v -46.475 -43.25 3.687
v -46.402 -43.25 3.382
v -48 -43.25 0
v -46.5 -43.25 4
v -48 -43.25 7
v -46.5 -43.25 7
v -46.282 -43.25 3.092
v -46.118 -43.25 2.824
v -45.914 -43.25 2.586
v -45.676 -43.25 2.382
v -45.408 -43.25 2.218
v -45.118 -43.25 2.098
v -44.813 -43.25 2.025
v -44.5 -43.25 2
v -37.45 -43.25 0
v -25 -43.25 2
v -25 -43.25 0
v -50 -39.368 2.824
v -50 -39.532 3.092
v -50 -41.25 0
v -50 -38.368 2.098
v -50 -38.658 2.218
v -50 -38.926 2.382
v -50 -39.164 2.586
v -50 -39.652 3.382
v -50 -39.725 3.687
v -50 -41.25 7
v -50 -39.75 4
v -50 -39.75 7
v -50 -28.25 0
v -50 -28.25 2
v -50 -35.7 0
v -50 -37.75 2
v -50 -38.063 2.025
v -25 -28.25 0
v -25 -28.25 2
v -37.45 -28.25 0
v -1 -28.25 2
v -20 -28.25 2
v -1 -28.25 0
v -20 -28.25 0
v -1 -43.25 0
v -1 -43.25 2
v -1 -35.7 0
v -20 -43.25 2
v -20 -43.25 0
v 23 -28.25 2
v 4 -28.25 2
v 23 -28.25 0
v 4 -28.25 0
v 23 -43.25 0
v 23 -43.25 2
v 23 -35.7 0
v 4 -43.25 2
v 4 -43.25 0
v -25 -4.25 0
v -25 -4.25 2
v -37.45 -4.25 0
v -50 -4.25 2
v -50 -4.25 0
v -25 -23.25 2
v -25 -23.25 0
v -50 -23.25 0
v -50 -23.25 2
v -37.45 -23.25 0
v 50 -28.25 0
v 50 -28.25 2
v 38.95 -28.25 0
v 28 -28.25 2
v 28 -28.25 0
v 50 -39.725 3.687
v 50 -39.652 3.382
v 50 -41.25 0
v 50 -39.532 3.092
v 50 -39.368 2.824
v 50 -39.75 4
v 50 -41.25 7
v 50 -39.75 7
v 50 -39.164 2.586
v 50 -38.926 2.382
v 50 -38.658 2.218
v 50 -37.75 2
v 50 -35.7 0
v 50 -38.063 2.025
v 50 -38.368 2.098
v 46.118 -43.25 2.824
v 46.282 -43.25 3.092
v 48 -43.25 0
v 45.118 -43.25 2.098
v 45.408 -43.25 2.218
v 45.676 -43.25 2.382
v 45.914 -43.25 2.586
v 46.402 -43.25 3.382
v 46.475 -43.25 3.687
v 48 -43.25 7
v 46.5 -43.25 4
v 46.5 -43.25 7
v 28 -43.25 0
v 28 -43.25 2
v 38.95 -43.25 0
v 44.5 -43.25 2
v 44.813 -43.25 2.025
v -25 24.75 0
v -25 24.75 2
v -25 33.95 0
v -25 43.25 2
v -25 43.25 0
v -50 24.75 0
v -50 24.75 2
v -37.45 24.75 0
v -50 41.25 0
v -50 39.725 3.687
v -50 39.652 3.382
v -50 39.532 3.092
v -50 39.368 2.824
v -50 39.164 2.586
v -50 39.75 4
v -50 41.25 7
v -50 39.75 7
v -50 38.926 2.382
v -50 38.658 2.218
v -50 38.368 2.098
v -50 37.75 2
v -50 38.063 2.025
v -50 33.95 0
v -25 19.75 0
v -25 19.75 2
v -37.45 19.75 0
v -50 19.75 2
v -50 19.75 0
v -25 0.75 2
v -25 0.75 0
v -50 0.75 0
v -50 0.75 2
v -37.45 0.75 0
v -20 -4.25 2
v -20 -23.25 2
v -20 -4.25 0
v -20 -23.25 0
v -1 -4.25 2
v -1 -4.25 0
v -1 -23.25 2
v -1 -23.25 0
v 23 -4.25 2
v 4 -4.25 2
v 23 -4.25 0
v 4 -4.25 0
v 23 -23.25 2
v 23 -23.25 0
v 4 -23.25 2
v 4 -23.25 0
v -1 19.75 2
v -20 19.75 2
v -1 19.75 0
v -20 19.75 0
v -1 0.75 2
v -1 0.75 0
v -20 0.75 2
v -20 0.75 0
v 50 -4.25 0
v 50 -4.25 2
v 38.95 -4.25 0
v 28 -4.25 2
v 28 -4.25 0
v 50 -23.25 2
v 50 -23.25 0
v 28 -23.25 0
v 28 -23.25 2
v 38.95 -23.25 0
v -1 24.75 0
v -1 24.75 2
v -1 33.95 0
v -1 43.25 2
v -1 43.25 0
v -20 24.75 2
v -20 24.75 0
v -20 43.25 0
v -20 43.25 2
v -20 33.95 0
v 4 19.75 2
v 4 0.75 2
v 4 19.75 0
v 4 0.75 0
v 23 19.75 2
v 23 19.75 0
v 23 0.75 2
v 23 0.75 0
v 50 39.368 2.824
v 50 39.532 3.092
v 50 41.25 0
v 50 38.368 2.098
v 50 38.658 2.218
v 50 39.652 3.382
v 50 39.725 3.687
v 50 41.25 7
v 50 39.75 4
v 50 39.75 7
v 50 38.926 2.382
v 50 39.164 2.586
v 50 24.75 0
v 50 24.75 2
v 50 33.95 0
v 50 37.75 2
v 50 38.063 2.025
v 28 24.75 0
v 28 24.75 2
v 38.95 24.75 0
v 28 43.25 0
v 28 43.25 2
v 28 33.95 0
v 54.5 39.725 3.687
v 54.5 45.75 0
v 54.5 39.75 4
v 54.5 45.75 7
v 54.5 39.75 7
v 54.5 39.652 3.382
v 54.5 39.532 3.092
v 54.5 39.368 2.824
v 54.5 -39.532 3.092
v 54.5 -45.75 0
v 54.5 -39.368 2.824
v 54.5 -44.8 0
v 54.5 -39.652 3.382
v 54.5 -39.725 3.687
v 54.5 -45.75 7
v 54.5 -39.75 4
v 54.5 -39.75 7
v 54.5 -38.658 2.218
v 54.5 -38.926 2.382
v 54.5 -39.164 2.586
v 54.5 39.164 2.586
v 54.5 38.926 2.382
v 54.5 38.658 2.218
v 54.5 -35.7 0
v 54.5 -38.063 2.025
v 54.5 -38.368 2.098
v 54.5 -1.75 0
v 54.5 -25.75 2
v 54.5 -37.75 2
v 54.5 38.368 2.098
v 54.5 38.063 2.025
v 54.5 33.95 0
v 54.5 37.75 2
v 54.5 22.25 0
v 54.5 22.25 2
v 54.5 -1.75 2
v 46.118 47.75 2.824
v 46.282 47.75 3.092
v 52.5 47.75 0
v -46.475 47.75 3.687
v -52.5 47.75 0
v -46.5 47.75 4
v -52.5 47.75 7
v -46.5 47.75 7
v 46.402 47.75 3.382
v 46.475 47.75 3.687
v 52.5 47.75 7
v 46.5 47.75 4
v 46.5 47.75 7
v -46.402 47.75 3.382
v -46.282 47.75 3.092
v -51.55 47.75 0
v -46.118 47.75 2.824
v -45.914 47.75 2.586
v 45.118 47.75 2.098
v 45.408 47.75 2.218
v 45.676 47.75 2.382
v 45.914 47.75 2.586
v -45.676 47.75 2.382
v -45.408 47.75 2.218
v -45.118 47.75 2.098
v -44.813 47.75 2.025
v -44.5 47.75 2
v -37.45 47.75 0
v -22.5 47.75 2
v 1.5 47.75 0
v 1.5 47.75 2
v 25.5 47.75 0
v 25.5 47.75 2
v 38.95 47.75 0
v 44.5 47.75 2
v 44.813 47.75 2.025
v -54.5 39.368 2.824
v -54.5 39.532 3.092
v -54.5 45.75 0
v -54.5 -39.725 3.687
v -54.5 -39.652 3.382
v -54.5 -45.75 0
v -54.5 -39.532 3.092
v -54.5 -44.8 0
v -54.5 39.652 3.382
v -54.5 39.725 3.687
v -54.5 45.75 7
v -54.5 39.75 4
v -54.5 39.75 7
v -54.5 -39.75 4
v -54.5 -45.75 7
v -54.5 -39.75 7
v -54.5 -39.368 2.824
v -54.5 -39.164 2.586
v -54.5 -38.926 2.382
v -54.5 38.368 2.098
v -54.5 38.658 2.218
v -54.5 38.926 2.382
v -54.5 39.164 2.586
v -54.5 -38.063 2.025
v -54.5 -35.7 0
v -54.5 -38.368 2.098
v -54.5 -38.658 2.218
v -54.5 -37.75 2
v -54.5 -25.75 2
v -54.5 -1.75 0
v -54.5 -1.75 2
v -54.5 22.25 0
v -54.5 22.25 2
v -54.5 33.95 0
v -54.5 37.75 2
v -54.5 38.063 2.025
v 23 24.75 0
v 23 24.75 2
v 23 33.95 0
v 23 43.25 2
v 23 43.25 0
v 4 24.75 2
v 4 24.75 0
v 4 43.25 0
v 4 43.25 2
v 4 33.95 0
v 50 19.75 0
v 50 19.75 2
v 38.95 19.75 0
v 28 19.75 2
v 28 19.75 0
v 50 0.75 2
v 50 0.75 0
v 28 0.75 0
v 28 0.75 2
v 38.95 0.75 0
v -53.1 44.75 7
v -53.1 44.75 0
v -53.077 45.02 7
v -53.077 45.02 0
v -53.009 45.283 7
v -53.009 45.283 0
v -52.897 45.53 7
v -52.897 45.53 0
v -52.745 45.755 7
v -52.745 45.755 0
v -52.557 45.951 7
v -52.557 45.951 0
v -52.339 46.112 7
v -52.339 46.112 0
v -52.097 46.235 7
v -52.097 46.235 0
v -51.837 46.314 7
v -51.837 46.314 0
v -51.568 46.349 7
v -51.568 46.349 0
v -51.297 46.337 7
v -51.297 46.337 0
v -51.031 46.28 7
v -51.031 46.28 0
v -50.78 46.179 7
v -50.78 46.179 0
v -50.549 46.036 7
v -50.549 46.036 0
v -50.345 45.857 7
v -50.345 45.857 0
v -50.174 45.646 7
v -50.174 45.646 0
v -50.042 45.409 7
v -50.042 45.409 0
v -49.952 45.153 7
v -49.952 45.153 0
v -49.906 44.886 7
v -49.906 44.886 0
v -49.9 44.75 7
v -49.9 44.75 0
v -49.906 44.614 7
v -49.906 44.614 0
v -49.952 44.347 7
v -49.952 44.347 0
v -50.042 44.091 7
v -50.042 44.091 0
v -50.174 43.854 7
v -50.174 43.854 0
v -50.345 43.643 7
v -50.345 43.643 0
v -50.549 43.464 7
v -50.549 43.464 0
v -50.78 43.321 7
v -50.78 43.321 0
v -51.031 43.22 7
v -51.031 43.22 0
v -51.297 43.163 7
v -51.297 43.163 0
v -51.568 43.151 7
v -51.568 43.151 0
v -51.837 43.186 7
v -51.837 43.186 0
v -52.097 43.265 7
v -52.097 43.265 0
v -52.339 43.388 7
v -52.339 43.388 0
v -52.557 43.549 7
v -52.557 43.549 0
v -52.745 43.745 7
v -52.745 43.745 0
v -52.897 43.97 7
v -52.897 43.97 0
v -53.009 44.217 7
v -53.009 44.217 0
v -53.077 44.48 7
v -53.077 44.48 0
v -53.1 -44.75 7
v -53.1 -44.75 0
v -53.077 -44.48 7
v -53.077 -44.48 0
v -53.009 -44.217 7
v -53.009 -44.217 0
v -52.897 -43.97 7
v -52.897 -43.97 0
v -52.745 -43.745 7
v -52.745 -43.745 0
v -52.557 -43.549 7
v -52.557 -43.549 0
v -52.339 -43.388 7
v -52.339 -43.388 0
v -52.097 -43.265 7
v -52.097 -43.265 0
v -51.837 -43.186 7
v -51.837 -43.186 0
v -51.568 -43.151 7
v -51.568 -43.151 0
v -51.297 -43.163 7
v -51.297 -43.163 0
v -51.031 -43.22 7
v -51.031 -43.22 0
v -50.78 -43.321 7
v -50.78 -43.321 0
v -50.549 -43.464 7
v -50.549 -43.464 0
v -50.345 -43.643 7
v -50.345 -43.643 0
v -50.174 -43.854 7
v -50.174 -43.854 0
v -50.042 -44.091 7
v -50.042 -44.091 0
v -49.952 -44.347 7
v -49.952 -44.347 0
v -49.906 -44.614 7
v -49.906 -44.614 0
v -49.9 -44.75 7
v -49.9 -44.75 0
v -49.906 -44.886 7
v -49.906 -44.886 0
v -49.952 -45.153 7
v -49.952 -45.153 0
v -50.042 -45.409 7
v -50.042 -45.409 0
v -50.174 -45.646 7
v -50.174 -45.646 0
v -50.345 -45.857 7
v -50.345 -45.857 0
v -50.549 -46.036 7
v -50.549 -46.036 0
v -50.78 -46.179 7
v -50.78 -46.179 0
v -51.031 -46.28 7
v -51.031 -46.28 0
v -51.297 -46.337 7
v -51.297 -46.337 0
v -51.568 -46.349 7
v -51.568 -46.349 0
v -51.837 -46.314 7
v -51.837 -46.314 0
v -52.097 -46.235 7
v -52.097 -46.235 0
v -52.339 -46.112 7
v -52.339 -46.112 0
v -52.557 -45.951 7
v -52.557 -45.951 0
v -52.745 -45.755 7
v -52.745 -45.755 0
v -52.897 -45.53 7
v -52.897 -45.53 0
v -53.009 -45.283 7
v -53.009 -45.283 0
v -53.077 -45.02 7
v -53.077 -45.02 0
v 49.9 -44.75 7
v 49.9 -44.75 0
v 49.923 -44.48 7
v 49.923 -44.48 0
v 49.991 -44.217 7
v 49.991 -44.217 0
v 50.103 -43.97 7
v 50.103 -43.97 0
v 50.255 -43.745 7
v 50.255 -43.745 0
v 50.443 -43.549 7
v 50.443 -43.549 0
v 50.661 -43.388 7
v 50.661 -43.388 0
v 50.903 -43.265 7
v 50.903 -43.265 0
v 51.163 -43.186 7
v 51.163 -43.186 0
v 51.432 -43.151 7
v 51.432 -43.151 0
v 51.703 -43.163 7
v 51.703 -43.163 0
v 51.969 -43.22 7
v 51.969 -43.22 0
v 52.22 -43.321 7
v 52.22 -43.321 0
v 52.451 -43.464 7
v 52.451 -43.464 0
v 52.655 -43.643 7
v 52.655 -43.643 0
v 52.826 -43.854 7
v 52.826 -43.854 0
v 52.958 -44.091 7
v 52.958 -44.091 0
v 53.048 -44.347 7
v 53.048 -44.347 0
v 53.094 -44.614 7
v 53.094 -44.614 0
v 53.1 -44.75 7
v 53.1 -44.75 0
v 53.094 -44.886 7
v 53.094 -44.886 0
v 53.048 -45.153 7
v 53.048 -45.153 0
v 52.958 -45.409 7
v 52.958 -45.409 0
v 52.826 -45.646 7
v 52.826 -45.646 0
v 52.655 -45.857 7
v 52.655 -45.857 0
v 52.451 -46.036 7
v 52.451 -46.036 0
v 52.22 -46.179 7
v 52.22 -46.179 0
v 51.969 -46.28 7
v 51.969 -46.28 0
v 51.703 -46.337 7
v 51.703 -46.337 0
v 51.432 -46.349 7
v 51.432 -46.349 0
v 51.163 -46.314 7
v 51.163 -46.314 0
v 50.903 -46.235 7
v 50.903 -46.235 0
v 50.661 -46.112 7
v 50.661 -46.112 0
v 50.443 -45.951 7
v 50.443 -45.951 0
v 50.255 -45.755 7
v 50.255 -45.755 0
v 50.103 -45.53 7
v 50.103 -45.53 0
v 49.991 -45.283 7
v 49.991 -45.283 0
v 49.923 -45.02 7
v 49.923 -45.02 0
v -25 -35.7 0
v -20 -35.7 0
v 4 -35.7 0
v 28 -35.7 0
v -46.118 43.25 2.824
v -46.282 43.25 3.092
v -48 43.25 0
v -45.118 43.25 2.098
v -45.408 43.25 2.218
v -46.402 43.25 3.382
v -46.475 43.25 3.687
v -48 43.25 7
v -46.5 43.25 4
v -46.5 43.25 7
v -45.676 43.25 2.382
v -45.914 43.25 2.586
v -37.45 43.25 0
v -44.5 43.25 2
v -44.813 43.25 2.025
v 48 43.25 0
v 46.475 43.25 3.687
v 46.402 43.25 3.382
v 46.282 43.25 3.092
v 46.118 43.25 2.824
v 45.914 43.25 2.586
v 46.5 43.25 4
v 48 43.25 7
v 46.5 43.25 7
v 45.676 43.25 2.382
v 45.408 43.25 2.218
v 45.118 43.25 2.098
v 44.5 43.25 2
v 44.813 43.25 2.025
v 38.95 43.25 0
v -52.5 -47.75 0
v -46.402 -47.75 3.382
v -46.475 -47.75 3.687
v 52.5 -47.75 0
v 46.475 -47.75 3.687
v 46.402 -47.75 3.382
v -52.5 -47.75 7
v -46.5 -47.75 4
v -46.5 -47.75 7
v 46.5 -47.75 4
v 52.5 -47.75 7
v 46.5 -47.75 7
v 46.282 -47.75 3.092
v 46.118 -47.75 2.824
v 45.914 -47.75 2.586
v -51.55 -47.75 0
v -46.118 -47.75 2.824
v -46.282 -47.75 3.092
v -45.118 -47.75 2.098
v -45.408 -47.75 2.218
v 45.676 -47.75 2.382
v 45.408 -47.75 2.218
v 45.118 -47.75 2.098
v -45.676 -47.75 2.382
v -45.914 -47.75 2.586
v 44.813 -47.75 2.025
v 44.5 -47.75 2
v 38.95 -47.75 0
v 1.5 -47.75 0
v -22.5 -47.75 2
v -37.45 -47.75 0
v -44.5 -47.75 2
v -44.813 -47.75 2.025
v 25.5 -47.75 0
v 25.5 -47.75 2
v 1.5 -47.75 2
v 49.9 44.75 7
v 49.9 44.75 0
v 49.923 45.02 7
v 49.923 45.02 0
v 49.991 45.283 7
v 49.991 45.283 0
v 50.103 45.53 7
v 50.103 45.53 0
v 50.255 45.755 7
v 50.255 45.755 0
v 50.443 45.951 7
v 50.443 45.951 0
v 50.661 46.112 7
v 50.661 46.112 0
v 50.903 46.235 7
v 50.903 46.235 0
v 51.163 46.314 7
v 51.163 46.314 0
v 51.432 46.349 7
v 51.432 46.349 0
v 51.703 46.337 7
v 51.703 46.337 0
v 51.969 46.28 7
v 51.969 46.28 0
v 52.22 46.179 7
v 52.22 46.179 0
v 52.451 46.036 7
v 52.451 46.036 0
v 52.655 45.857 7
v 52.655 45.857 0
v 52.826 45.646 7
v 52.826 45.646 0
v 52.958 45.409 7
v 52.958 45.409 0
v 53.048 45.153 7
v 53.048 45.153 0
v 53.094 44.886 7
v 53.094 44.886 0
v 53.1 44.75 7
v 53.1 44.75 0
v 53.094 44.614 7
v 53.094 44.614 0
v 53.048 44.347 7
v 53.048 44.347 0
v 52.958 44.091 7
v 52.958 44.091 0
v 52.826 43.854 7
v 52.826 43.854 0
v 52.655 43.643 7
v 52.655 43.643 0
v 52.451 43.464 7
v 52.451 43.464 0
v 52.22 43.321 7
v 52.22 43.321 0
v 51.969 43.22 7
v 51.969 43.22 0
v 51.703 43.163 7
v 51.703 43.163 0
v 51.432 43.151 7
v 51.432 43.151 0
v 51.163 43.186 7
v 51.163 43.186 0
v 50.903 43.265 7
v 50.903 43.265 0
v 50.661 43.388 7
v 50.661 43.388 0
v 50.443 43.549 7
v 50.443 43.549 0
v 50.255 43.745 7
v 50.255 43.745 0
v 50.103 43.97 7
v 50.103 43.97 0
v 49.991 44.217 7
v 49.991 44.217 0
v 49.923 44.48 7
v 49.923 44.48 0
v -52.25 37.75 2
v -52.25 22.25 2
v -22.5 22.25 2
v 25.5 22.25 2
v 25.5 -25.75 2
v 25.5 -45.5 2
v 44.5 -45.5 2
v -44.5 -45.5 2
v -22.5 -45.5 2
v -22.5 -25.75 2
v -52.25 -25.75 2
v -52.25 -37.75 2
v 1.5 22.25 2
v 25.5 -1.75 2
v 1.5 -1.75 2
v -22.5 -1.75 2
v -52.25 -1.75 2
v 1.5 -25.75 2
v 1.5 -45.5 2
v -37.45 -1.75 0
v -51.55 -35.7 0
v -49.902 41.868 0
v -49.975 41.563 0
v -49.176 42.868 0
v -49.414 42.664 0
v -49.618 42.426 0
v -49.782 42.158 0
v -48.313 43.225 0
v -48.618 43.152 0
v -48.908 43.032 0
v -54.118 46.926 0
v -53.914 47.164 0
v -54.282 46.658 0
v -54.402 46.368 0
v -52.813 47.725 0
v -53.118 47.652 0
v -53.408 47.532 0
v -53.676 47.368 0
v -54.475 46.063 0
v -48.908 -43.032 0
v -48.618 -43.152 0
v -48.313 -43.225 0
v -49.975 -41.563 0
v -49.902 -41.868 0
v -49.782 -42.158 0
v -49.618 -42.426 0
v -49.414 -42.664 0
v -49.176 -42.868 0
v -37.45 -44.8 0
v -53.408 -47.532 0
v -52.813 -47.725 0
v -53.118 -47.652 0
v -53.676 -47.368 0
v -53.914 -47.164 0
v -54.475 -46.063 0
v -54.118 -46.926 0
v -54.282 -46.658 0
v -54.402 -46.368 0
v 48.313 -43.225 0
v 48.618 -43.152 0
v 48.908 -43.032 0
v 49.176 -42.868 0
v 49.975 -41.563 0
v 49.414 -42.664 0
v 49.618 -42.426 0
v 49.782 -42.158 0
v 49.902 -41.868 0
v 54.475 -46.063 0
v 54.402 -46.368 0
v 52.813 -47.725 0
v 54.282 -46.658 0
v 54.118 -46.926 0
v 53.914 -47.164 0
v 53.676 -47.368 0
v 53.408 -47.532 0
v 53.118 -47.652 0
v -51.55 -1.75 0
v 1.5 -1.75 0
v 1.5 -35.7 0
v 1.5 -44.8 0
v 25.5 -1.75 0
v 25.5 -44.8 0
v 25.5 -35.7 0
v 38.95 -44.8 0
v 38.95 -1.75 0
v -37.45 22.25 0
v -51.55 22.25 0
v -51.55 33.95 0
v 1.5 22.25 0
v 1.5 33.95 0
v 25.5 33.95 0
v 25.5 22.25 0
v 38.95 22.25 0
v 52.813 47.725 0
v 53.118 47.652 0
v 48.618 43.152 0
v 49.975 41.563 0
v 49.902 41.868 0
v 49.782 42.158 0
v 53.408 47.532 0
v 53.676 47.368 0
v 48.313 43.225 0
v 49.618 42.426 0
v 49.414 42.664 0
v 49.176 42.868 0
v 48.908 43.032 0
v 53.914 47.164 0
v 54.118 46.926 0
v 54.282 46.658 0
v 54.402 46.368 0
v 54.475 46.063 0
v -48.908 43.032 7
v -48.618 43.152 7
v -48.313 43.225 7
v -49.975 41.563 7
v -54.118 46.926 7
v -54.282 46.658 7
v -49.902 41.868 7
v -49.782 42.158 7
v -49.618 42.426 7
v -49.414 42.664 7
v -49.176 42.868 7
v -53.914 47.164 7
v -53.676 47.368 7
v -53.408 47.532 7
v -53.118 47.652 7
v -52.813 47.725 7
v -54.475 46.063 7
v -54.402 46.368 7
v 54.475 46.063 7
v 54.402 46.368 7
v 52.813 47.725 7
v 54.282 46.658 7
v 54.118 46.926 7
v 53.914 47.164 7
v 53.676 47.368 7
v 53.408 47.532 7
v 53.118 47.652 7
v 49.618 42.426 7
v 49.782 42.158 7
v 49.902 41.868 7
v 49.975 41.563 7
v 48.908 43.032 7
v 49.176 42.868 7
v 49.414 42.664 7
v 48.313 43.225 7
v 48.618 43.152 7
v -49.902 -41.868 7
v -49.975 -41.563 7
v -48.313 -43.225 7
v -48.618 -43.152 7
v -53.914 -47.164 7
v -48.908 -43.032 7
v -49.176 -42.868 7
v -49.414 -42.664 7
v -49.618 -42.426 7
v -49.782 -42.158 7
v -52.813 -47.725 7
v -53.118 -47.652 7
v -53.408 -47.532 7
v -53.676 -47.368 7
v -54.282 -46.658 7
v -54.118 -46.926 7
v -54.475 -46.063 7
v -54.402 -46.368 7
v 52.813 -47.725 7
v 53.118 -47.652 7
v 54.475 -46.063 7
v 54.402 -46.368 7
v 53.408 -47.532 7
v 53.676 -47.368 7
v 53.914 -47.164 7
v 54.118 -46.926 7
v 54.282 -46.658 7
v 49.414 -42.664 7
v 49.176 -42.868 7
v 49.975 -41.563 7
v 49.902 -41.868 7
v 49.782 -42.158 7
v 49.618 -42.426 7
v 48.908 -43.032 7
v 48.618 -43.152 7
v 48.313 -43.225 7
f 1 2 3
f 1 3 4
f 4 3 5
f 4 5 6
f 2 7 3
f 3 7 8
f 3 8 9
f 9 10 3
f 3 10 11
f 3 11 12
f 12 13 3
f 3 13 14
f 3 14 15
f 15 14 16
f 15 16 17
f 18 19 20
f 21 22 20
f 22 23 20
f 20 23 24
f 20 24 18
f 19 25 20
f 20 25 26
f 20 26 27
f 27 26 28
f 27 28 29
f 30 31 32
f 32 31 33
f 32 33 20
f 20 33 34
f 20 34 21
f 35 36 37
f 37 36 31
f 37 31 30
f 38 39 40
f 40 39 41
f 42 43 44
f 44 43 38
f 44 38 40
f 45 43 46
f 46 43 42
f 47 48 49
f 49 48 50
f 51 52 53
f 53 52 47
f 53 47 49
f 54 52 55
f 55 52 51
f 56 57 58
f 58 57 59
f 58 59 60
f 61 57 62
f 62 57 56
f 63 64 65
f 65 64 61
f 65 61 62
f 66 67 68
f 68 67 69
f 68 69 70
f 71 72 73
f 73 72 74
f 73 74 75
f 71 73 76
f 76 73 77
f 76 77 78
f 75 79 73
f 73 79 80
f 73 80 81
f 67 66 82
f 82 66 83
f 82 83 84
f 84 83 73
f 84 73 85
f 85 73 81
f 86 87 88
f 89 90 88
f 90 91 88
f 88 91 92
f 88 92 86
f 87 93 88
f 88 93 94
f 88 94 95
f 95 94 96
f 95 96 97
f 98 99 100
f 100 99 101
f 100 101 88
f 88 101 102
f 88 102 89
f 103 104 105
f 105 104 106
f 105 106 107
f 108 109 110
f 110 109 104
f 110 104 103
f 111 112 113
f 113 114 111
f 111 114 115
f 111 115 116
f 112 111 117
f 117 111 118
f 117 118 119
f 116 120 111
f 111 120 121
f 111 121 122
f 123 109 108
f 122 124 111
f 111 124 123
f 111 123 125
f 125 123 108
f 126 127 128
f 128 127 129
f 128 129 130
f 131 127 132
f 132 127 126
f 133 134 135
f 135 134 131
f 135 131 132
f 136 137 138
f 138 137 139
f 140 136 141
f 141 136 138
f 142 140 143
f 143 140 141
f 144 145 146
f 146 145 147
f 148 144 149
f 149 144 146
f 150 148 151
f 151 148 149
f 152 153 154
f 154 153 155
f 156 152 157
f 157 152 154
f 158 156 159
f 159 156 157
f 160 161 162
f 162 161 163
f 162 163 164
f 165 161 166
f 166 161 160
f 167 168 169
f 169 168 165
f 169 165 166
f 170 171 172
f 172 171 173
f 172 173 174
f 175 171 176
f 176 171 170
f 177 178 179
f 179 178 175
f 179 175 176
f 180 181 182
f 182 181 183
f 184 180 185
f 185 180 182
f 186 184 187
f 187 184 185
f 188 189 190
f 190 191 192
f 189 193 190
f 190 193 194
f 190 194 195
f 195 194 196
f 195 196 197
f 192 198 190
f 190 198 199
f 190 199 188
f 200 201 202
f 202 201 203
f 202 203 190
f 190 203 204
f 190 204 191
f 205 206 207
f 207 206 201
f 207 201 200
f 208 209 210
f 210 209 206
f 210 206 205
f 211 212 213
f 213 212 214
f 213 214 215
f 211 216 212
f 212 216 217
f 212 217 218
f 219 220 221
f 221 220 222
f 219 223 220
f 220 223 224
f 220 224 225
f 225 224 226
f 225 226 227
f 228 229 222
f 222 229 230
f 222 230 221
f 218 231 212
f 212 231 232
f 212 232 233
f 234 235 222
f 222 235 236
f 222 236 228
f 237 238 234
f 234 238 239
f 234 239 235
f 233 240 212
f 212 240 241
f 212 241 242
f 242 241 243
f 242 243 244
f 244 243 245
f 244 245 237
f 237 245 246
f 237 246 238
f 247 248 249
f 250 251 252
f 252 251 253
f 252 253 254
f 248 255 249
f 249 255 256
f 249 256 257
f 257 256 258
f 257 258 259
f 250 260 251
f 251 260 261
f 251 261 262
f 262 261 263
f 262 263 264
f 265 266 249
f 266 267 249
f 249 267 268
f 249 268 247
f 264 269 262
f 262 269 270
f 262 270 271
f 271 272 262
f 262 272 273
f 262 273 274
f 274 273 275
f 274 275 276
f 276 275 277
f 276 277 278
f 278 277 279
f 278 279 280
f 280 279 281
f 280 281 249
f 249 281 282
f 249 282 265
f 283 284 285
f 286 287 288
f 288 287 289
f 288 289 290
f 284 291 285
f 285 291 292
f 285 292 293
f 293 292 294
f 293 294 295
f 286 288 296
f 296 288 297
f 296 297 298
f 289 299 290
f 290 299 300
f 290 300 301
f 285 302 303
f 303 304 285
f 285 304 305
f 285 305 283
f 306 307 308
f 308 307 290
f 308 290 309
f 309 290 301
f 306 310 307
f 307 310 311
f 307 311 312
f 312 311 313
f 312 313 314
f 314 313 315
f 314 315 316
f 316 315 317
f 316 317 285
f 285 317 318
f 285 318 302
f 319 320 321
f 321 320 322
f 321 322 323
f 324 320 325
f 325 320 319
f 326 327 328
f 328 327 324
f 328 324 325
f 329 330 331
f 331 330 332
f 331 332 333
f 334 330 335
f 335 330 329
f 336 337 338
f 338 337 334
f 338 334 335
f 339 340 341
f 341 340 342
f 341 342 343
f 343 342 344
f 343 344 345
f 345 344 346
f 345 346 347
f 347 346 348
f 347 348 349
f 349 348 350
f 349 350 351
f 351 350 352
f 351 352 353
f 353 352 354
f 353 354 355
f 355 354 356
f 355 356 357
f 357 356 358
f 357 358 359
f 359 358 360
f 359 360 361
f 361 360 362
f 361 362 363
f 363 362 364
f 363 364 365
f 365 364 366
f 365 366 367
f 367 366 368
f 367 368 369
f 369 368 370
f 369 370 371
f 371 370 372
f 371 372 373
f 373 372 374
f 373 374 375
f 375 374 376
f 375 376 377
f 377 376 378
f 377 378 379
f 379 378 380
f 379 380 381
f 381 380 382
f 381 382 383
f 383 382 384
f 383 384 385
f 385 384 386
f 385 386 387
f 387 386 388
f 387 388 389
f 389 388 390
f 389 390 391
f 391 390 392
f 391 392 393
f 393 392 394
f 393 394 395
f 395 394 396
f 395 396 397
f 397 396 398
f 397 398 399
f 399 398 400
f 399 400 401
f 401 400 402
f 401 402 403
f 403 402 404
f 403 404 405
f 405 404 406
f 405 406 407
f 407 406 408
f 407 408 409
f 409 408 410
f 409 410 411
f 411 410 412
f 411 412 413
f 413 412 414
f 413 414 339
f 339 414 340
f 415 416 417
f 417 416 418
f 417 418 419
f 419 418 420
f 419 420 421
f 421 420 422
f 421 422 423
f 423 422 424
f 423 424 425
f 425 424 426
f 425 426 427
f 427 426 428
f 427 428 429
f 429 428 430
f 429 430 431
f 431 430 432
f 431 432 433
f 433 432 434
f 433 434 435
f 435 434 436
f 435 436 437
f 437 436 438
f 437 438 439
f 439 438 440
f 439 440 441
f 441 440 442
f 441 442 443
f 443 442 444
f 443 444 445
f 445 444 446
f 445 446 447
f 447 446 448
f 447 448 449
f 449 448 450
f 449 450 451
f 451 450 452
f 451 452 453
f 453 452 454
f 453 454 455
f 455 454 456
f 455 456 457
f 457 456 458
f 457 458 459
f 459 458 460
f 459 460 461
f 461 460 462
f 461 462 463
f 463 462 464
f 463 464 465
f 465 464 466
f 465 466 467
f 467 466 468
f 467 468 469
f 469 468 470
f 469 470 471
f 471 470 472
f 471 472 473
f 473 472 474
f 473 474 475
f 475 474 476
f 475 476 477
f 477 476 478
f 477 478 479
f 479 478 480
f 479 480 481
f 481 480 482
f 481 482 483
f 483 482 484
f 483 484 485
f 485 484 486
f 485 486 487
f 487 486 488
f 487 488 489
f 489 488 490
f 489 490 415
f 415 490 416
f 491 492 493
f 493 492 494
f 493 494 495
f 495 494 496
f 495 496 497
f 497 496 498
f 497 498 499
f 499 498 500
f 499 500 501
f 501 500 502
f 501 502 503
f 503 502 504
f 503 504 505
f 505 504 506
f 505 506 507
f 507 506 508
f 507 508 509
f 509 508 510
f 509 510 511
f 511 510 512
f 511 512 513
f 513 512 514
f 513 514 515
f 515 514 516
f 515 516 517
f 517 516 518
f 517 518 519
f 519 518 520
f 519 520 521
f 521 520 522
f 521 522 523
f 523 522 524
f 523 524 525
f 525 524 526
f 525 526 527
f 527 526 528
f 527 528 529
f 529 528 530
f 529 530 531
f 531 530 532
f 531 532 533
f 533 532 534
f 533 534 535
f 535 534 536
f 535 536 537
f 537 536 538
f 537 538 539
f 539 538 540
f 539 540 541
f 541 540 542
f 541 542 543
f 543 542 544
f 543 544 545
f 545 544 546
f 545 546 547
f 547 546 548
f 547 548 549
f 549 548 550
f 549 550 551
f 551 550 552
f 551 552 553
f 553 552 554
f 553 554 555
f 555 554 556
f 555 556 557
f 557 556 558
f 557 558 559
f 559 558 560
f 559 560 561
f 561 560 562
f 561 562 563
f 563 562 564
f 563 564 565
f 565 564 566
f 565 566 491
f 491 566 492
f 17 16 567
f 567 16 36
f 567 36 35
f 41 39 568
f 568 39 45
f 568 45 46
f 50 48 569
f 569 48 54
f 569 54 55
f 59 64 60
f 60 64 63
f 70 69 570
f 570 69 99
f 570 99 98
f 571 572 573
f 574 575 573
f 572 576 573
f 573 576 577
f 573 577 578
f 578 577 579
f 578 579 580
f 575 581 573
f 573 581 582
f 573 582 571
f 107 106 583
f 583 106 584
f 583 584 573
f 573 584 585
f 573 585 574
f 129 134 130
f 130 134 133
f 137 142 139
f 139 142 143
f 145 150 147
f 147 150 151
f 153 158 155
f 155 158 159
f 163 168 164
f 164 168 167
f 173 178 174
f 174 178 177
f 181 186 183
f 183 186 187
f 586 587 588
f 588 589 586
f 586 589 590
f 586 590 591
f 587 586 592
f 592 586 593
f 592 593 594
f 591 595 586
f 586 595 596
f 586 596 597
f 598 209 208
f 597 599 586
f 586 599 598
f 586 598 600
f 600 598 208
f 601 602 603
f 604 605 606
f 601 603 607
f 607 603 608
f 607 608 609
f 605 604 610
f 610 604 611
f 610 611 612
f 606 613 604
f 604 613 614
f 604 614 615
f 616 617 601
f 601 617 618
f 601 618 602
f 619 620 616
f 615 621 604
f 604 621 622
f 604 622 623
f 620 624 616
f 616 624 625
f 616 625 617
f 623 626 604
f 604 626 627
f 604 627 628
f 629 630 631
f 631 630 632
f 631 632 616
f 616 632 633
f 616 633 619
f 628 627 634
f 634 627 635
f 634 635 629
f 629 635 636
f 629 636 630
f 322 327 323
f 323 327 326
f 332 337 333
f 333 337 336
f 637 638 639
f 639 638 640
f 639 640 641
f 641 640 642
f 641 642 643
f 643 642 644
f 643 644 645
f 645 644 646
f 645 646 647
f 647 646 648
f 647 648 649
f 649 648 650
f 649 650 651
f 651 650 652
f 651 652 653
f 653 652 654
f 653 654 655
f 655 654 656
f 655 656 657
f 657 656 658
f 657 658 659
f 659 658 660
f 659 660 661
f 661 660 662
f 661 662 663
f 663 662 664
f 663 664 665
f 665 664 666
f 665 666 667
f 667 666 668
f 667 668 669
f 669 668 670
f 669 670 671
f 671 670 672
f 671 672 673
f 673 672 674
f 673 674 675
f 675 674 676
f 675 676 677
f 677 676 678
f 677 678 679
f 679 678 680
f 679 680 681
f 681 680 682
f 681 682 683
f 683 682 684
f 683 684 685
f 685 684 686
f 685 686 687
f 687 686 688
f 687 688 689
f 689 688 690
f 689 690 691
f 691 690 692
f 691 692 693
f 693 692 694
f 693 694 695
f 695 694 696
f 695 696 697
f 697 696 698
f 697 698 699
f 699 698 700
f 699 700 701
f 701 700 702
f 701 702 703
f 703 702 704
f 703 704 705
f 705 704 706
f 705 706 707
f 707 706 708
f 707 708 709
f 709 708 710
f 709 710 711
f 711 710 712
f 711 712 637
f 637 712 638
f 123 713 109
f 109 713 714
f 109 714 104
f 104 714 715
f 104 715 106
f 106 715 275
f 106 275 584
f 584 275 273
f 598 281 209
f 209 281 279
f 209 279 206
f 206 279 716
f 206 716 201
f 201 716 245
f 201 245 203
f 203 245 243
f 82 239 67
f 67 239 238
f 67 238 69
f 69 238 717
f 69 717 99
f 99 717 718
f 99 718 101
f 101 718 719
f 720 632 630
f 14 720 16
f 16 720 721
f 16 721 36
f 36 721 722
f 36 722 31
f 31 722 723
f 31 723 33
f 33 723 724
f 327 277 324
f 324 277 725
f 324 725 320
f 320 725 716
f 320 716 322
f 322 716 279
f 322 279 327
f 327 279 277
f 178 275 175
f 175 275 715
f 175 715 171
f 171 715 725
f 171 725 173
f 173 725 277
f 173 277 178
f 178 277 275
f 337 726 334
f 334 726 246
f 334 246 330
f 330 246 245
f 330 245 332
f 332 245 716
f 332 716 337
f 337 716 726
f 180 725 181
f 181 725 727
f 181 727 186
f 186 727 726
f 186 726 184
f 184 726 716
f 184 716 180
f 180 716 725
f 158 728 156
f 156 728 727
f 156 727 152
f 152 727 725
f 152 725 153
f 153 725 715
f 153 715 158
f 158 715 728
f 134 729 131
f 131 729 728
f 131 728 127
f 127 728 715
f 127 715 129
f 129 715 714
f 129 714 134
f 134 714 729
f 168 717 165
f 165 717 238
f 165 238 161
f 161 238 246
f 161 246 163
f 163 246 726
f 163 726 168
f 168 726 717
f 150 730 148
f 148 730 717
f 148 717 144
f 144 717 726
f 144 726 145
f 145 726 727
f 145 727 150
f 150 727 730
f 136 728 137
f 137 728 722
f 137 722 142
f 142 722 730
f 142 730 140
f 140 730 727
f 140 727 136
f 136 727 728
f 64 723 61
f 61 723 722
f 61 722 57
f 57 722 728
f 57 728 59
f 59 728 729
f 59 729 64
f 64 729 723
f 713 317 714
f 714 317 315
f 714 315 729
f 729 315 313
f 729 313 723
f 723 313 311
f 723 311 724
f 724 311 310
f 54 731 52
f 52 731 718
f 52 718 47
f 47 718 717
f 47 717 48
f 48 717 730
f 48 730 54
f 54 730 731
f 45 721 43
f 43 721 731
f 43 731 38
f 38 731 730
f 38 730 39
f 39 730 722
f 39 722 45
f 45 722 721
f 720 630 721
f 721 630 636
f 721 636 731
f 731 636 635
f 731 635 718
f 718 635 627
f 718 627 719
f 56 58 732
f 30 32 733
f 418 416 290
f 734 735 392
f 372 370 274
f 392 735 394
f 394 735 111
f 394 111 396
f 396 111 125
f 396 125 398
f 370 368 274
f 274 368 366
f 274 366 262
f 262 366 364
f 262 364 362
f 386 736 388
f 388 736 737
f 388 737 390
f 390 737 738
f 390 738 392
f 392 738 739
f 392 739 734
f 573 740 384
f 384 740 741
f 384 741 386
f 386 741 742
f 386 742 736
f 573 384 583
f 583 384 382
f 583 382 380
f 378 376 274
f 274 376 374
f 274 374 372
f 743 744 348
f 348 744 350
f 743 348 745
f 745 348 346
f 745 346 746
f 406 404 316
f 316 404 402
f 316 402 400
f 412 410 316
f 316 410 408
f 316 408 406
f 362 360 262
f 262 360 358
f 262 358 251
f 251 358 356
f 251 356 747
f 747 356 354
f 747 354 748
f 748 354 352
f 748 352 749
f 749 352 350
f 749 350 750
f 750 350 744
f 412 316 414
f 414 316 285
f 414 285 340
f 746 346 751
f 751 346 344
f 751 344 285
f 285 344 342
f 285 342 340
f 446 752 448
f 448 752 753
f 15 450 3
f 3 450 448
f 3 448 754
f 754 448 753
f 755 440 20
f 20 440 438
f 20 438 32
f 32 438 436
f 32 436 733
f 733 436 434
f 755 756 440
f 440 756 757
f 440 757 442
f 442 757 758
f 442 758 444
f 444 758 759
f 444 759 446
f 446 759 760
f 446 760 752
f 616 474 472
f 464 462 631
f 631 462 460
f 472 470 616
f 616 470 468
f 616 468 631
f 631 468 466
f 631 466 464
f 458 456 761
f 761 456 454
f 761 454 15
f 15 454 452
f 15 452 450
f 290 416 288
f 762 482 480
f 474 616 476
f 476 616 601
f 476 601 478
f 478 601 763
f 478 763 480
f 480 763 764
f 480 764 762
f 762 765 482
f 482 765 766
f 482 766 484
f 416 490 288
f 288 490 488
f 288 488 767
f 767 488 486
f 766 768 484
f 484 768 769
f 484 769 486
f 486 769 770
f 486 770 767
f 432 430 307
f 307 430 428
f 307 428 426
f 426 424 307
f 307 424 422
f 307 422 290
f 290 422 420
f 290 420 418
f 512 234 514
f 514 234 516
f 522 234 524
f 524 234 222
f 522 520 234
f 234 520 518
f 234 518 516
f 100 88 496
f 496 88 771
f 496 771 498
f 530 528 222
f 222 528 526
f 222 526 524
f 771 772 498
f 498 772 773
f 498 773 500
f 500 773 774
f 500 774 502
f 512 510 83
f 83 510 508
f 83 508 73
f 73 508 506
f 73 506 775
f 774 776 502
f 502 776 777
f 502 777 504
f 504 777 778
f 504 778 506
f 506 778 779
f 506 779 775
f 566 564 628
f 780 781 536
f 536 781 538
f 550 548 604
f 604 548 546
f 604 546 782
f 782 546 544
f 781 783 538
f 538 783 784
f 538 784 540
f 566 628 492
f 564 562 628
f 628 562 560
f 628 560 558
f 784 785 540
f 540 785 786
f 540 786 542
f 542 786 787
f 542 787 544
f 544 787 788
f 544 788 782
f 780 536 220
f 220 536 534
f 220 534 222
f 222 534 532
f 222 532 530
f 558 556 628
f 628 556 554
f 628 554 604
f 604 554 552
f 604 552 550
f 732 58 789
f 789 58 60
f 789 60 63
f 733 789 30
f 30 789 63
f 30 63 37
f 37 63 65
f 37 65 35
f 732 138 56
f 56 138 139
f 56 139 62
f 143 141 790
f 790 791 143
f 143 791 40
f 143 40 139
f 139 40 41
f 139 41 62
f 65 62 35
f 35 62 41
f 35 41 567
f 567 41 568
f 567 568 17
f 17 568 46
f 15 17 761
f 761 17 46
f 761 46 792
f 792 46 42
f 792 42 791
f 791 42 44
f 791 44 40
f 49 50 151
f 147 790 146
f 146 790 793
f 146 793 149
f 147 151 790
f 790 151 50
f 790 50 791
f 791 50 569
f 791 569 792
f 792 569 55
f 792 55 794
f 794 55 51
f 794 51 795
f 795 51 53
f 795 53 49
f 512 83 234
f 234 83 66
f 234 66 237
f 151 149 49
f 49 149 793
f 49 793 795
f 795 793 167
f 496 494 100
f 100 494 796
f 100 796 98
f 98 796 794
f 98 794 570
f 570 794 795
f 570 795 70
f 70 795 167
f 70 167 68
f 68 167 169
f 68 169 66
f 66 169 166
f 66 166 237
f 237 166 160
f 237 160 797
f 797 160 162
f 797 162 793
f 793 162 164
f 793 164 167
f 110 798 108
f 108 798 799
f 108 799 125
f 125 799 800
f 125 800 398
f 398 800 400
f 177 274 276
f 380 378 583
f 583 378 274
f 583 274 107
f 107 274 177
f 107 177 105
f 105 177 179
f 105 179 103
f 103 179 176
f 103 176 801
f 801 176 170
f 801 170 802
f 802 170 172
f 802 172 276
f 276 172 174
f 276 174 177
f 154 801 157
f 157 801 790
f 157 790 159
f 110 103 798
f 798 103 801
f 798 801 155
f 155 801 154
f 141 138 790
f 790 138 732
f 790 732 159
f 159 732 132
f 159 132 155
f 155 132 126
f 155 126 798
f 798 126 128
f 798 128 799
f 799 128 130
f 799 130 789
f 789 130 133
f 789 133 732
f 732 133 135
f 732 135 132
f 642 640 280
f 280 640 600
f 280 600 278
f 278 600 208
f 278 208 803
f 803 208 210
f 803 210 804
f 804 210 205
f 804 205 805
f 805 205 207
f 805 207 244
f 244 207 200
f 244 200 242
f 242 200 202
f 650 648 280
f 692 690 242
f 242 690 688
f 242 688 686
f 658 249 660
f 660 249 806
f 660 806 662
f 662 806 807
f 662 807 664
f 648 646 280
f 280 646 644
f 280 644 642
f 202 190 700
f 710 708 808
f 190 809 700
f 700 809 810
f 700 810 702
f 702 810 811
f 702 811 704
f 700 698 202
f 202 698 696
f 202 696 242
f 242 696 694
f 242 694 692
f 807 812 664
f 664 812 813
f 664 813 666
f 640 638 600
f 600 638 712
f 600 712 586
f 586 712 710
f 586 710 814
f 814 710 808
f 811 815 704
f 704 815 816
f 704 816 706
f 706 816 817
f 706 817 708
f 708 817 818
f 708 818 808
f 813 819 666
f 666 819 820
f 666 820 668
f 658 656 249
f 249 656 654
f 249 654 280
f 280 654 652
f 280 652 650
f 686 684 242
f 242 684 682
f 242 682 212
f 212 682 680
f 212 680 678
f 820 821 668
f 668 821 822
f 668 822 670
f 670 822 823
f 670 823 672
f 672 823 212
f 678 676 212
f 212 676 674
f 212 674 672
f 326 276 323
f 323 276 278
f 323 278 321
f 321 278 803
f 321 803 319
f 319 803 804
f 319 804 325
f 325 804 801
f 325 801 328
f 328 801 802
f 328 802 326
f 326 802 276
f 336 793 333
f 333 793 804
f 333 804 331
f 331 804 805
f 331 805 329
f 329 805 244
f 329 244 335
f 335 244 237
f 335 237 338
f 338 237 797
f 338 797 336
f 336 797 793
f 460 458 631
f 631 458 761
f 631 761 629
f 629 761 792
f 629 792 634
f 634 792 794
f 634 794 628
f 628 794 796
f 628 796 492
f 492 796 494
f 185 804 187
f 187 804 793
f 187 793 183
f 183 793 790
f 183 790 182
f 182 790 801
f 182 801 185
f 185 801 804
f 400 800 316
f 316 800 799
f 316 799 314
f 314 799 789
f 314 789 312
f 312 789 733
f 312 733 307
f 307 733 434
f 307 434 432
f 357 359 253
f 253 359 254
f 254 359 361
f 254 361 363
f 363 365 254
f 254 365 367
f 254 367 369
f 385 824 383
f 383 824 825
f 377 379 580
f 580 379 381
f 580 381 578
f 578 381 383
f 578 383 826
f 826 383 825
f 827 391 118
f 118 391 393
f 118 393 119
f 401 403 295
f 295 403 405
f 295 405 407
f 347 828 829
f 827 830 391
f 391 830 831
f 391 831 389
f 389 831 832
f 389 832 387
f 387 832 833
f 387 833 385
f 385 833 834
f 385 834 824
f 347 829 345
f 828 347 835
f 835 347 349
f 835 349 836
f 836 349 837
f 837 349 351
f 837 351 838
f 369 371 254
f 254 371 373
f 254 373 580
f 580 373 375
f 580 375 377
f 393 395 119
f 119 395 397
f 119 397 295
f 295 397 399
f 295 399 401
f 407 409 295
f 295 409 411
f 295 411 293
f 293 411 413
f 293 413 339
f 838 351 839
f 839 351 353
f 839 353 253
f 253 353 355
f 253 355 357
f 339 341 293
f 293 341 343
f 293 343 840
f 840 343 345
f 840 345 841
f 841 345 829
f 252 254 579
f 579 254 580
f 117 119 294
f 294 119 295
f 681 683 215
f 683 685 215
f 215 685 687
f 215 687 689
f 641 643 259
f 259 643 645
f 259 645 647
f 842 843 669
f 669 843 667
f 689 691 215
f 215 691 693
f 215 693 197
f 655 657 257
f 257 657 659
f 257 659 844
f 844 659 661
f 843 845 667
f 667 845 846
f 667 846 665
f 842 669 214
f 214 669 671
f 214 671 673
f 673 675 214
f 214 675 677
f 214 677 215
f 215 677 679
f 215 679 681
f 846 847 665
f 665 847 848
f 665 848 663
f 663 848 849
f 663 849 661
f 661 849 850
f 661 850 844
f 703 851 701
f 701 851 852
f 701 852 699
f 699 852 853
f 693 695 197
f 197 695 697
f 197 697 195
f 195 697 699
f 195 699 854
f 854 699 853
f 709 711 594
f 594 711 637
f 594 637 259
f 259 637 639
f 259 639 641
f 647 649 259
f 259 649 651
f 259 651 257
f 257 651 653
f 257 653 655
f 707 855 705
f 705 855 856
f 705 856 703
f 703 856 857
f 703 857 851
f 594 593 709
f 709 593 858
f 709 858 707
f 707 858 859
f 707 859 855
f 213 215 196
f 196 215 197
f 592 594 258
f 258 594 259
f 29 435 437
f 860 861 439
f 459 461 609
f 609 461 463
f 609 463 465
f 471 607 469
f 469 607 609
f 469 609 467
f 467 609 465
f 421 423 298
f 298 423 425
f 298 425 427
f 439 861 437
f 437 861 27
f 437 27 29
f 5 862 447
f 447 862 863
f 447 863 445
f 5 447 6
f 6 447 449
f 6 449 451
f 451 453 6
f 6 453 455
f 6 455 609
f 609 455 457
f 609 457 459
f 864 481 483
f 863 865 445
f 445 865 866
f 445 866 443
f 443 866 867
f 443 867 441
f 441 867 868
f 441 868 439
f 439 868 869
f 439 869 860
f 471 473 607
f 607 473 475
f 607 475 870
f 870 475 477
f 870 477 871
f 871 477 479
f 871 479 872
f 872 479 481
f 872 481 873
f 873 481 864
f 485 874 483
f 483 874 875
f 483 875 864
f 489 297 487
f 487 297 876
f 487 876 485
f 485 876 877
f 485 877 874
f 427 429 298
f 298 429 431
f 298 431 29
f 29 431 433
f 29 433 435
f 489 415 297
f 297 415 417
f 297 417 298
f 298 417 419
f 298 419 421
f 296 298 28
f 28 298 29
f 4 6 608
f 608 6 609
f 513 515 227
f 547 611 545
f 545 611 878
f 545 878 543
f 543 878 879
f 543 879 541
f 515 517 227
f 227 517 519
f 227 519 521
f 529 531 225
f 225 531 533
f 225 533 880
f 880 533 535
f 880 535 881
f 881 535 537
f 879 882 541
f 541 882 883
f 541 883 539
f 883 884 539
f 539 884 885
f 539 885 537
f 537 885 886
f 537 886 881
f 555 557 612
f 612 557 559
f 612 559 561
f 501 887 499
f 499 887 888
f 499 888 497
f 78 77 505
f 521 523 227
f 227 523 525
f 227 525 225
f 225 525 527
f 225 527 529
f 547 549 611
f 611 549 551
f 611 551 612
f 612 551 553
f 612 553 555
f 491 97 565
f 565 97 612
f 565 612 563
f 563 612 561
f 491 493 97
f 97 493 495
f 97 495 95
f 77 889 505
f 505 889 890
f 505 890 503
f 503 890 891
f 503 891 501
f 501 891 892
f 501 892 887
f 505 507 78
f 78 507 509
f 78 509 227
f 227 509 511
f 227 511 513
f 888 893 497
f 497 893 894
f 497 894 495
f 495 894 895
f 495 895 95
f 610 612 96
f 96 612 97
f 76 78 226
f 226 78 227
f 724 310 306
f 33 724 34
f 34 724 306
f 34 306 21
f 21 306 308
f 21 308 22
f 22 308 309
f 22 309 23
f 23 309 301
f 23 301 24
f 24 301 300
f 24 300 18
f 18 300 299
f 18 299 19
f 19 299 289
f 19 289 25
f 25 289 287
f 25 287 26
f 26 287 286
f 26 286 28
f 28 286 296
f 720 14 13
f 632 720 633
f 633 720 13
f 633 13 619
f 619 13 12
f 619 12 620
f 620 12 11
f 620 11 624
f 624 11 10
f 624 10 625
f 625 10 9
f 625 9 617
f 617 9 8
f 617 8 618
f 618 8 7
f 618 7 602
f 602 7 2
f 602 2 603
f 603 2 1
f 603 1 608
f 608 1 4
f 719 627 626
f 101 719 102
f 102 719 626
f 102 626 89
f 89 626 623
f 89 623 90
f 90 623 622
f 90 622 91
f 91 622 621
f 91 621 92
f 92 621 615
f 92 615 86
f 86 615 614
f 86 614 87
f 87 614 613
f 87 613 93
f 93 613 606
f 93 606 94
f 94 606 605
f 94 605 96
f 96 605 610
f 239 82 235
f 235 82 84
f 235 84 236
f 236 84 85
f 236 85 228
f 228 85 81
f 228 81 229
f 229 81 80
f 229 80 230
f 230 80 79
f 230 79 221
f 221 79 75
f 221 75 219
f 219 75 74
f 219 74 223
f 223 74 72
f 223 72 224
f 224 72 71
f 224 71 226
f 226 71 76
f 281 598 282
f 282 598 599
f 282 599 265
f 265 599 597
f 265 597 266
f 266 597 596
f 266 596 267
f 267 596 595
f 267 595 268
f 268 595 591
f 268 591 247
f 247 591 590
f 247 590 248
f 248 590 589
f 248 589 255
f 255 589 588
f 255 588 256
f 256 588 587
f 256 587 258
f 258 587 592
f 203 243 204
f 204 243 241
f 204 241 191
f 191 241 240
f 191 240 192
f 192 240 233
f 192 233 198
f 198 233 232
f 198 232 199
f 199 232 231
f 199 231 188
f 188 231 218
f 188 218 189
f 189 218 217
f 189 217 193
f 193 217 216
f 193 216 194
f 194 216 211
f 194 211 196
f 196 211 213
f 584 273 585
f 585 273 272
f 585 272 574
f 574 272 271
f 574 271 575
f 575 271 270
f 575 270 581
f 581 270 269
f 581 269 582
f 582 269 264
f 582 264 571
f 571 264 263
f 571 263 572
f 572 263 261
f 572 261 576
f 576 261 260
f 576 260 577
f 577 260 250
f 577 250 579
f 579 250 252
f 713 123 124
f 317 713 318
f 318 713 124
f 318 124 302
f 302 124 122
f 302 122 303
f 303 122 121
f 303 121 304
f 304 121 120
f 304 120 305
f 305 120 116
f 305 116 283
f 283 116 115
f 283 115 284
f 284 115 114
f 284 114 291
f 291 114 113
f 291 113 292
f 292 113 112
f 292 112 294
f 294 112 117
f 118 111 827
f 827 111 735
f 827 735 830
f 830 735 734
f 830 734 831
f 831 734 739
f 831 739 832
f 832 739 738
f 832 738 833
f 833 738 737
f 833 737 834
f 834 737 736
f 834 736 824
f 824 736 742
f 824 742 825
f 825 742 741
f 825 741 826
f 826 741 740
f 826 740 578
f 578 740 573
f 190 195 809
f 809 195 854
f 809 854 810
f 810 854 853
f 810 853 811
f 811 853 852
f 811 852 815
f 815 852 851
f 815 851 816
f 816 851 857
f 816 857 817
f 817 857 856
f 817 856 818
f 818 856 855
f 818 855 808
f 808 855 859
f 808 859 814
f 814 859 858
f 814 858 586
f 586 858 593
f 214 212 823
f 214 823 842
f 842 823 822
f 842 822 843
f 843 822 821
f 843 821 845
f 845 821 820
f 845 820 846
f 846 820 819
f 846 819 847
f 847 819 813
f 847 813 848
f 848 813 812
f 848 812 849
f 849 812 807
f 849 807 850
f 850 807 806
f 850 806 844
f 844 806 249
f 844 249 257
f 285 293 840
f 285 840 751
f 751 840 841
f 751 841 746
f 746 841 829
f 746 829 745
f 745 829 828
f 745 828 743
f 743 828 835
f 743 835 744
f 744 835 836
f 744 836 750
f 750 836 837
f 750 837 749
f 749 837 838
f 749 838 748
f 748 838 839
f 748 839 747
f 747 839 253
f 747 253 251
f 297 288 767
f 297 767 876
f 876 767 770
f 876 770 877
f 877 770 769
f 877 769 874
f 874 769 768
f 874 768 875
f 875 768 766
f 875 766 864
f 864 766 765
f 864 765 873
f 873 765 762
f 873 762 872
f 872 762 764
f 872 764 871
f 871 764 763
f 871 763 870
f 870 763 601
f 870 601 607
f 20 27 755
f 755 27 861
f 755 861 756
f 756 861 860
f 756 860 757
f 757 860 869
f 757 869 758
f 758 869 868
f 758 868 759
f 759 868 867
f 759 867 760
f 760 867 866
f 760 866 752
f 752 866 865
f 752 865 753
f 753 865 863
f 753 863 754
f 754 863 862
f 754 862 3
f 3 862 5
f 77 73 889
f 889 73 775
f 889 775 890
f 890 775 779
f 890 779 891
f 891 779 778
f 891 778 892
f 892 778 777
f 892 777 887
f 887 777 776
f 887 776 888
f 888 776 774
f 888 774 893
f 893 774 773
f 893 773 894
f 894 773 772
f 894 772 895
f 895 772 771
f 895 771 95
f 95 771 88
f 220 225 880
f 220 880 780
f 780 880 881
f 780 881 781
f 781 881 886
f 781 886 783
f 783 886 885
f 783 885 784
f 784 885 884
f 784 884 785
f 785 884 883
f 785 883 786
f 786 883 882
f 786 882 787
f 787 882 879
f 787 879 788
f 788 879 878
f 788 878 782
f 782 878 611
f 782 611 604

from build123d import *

# Parameters (mm, degrees)
BASE_SKETCH_R       = 1.6
BASE_SKETCH_W       = 25
BASE_SKETCH_H       = 5
BASE_SKETCH_W_2     = 5
BASE_SKETCH_H_2     = 15
BASE_SKETCH_W_3     = 19
BASE_SKETCH_W_4     = 22
BASE_SKETCH_W_5     = 4.5
BASE_SKETCH_H_3     = 11.5
BASE_SKETCH_H_4     = 19
BASE_SKETCH_H_5     = 18.5
BOSS_EXTRUDE1_DEPTH = 2
BOSS_EXTRUDE2_START = 2
SKETCH1_7_R         = 1.6
BOSS_EXTRUDE2_DEPTH = 5
FILLET1_R           = 2


with BuildPart() as part:
    # Base_Sketch → Boss-Extrude1 (new body)
    # profile 1 of 47: a face of its own
    with BuildSketch(Plane.XY):
        Polygon((-46.5, -43.25), (-46.5, -47.75), (46.5, -47.75), (46.5, -43.25), (28, -43.25), (23, -43.25), (4, -43.25), (-1, -43.25), (-20, -43.25), (-25, -43.25), align=None)
    # profile 2 of 47: a face of its own
    with BuildSketch(Plane.XY):
        Polygon((-50, -39.75), (-54.5, -39.75), (-54.5, -47.75), (-46.5, -47.75), (-46.5, -43.25), (-50, -43.25), align=None)
        with Locations((-51.5, -44.75)):
            Circle(BASE_SKETCH_R, mode=Mode.SUBTRACT)
    # profile 3 of 47: a face of its own
    with BuildSketch(Plane.XY):
        Polygon((-50, 39.75), (-54.5, 39.75), (-54.5, -39.75), (-50, -39.75), (-50, -28.25), (-50, -23.25), (-50, -4.25), (-50, 0.75), (-50, 19.75), (-50, 24.75), align=None)
    # profile 4 of 47: a face of its own
    with BuildSketch(Plane.XY):
        with Locations((-37.5, -25.75)):
            Rectangle(BASE_SKETCH_W, BASE_SKETCH_H)
    # profile 5 of 47: a face of its own
    with BuildSketch(Plane.XY):
        with Locations((-22.5, -25.75)):
            Rectangle(BASE_SKETCH_W_2, BASE_SKETCH_H)
    # profile 6 of 47: a face of its own
    with BuildSketch(Plane.XY):
        with Locations((-22.5, -35.75)):
            Rectangle(BASE_SKETCH_W_2, BASE_SKETCH_H_2)
    # profile 7 of 47: a face of its own
    with BuildSketch(Plane.XY):
        with Locations((-10.5, -25.75)):
            Rectangle(BASE_SKETCH_W_3, BASE_SKETCH_H)
    # profile 8 of 47: a face of its own
    with BuildSketch(Plane.XY):
        with Locations((1.5, -25.75)):
            Rectangle(BASE_SKETCH_W_2, BASE_SKETCH_H)
    # profile 9 of 47: a face of its own
    with BuildSketch(Plane.XY):
        with Locations((1.5, -35.75)):
            Rectangle(BASE_SKETCH_W_2, BASE_SKETCH_H_2)
    # profile 10 of 47: a face of its own
    with BuildSketch(Plane.XY):
        with Locations((13.5, -25.75)):
            Rectangle(BASE_SKETCH_W_3, BASE_SKETCH_H)
    # profile 11 of 47: a face of its own
    with BuildSketch(Plane.XY):
        with Locations((25.5, -25.75)):
            Rectangle(BASE_SKETCH_W_2, BASE_SKETCH_H)
    # profile 12 of 47: a face of its own
    with BuildSketch(Plane.XY):
        with Locations((25.5, -35.75)):
            Rectangle(BASE_SKETCH_W_2, BASE_SKETCH_H_2)
    # profile 13 of 47: a face of its own
    with BuildSketch(Plane.XY):
        with Locations((39, -25.75)):
            Rectangle(BASE_SKETCH_W_4, BASE_SKETCH_H)
    # profile 14 of 47: a face of its own
    with BuildSketch(Plane.XY):
        with Locations((52.25, -25.75)):
            Rectangle(BASE_SKETCH_W_5, BASE_SKETCH_H)
    # profile 15 of 47: a face of its own
    with BuildSketch(Plane.XY):
        with Locations((52.25, -34)):
            Rectangle(BASE_SKETCH_W_5, BASE_SKETCH_H_3)
    # profile 16 of 47: a face of its own
    with BuildSketch(Plane.XY):
        Polygon((46.5, -43.25), (46.5, -47.75), (54.5, -47.75), (54.5, -39.75), (50, -39.75), (50, -43.25), align=None)
        with Locations((51.5, -44.75)):
            Circle(BASE_SKETCH_R, mode=Mode.SUBTRACT)
    # profile 17 of 47: a face of its own
    with BuildSketch(Plane.XY):
        with Locations((52.25, -13.75)):
            Rectangle(BASE_SKETCH_W_5, BASE_SKETCH_H_4)
    # profile 18 of 47: a face of its own
    with BuildSketch(Plane.XY):
        with Locations((52.25, -1.75)):
            Rectangle(BASE_SKETCH_W_5, BASE_SKETCH_H)
    # profile 19 of 47: a face of its own
    with BuildSketch(Plane.XY):
        with Locations((39, -1.75)):
            Rectangle(BASE_SKETCH_W_4, BASE_SKETCH_H)
    # profile 20 of 47: a face of its own
    with BuildSketch(Plane.XY):
        with Locations((25.5, -1.75)):
            Rectangle(BASE_SKETCH_W_2, BASE_SKETCH_H)
    # profile 21 of 47: a face of its own
    with BuildSketch(Plane.XY):
        with Locations((25.5, -13.75)):
            Rectangle(BASE_SKETCH_W_2, BASE_SKETCH_H_4)
    # profile 22 of 47: a face of its own
    with BuildSketch(Plane.XY):
        with Locations((25.5, 10.25)):
            Rectangle(BASE_SKETCH_W_2, BASE_SKETCH_H_4)
    # profile 23 of 47: a face of its own
    with BuildSketch(Plane.XY):
        with Locations((13.5, -1.75)):
            Rectangle(BASE_SKETCH_W_3, BASE_SKETCH_H)
    # profile 24 of 47: a face of its own
    with BuildSketch(Plane.XY):
        with Locations((1.5, -1.75)):
            Rectangle(BASE_SKETCH_W_2, BASE_SKETCH_H)
    # profile 25 of 47: a face of its own
    with BuildSketch(Plane.XY):
        with Locations((1.5, -13.75)):
            Rectangle(BASE_SKETCH_W_2, BASE_SKETCH_H_4)
    # profile 26 of 47: a face of its own
    with BuildSketch(Plane.XY):
        with Locations((52.25, 10.25)):
            Rectangle(BASE_SKETCH_W_5, BASE_SKETCH_H_4)
    # profile 27 of 47: a face of its own
    with BuildSketch(Plane.XY):
        with Locations((52.25, 22.25)):
            Rectangle(BASE_SKETCH_W_5, BASE_SKETCH_H)
    # profile 28 of 47: a face of its own
    with BuildSketch(Plane.XY):
        with Locations((52.25, 32.25)):
            Rectangle(BASE_SKETCH_W_5, BASE_SKETCH_H_2)
    # profile 29 of 47: a face of its own
    with BuildSketch(Plane.XY):
        Polygon((54.5, 47.75), (46.5, 47.75), (46.5, 43.25), (50, 43.25), (50, 39.75), (54.5, 39.75), align=None)
        with Locations((51.5, 44.75)):
            Circle(BASE_SKETCH_R, mode=Mode.SUBTRACT)
    # profile 30 of 47: a face of its own
    with BuildSketch(Plane.XY):
        Polygon((46.5, 47.75), (-46.5, 47.75), (-46.5, 43.25), (-25, 43.25), (-20, 43.25), (-1, 43.25), (4, 43.25), (23, 43.25), (28, 43.25), (46.5, 43.25), align=None)
    # profile 31 of 47: a face of its own
    with BuildSketch(Plane.XY):
        with Locations((39, 22.25)):
            Rectangle(BASE_SKETCH_W_4, BASE_SKETCH_H)
    # profile 32 of 47: a face of its own
    with BuildSketch(Plane.XY):
        with Locations((25.5, 34)):
            Rectangle(BASE_SKETCH_W_2, BASE_SKETCH_H_5)
    # profile 33 of 47: a face of its own
    with BuildSketch(Plane.XY):
        with Locations((25.5, 22.25)):
            Rectangle(BASE_SKETCH_W_2, BASE_SKETCH_H)
    # profile 34 of 47: a face of its own
    with BuildSketch(Plane.XY):
        with Locations((13.5, 22.25)):
            Rectangle(BASE_SKETCH_W_3, BASE_SKETCH_H)
    # profile 35 of 47: a face of its own
    with BuildSketch(Plane.XY):
        with Locations((1.5, 22.25)):
            Rectangle(BASE_SKETCH_W_2, BASE_SKETCH_H)
    # profile 36 of 47: a face of its own
    with BuildSketch(Plane.XY):
        with Locations((1.5, 34)):
            Rectangle(BASE_SKETCH_W_2, BASE_SKETCH_H_5)
    # profile 37 of 47: a face of its own
    with BuildSketch(Plane.XY):
        with Locations((1.5, 10.25)):
            Rectangle(BASE_SKETCH_W_2, BASE_SKETCH_H_4)
    # profile 38 of 47: a face of its own
    with BuildSketch(Plane.XY):
        with Locations((-10.5, 22.25)):
            Rectangle(BASE_SKETCH_W_3, BASE_SKETCH_H)
    # profile 39 of 47: a face of its own
    with BuildSketch(Plane.XY):
        with Locations((-10.5, -1.75)):
            Rectangle(BASE_SKETCH_W_3, BASE_SKETCH_H)
    # profile 40 of 47: a face of its own
    with BuildSketch(Plane.XY):
        with Locations((-22.5, -1.75)):
            Rectangle(BASE_SKETCH_W_2, BASE_SKETCH_H)
    # profile 41 of 47: a face of its own
    with BuildSketch(Plane.XY):
        Polygon((-46.5, 47.75), (-54.5, 47.75), (-54.5, 39.75), (-50, 39.75), (-50, 43.25), (-46.5, 43.25), align=None)
        with Locations((-51.5, 44.75)):
            Circle(BASE_SKETCH_R, mode=Mode.SUBTRACT)
    # profile 42 of 47: a face of its own
    with BuildSketch(Plane.XY):
        with Locations((-37.5, 22.25)):
            Rectangle(BASE_SKETCH_W, BASE_SKETCH_H)
    # profile 43 of 47: a face of its own
    with BuildSketch(Plane.XY):
        with Locations((-22.5, 22.25)):
            Rectangle(BASE_SKETCH_W_2, BASE_SKETCH_H)
    # profile 44 of 47: a face of its own
    with BuildSketch(Plane.XY):
        with Locations((-22.5, 34)):
            Rectangle(BASE_SKETCH_W_2, BASE_SKETCH_H_5)
    # profile 45 of 47: a face of its own
    with BuildSketch(Plane.XY):
        with Locations((-22.5, 10.25)):
            Rectangle(BASE_SKETCH_W_2, BASE_SKETCH_H_4)
    # profile 46 of 47: a face of its own
    with BuildSketch(Plane.XY):
        with Locations((-37.5, -1.75)):
            Rectangle(BASE_SKETCH_W, BASE_SKETCH_H)
    # profile 47 of 47: a face of its own
    with BuildSketch(Plane.XY):
        with Locations((-22.5, -13.75)):
            Rectangle(BASE_SKETCH_W_2, BASE_SKETCH_H_4)
    extrude(amount=BOSS_EXTRUDE1_DEPTH)

    # Sketch1<7> → Boss-Extrude2 (add)
    # profile 1 of 4: a face of its own
    with BuildSketch(Plane.XY.offset(BOSS_EXTRUDE2_START)):
        Polygon((-46.5, 47.75), (-54.5, 47.75), (-54.5, 39.75), (-50, 39.75), (-50, 43.25), (-46.5, 43.25), align=None)
        with Locations((-51.5, 44.75)):
            Circle(SKETCH1_7_R, mode=Mode.SUBTRACT)
    # profile 2 of 4: a face of its own
    with BuildSketch(Plane.XY.offset(BOSS_EXTRUDE2_START)):
        Polygon((54.5, 47.75), (46.5, 47.75), (46.5, 43.25), (50, 43.25), (50, 39.75), (54.5, 39.75), align=None)
        with Locations((51.5, 44.75)):
            Circle(SKETCH1_7_R, mode=Mode.SUBTRACT)
    # profile 3 of 4: a face of its own
    with BuildSketch(Plane.XY.offset(BOSS_EXTRUDE2_START)):
        Polygon((-50, -39.75), (-54.5, -39.75), (-54.5, -47.75), (-46.5, -47.75), (-46.5, -43.25), (-50, -43.25), align=None)
        with Locations((-51.5, -44.75)):
            Circle(SKETCH1_7_R, mode=Mode.SUBTRACT)
    # profile 4 of 4: a face of its own
    with BuildSketch(Plane.XY.offset(BOSS_EXTRUDE2_START)):
        Polygon((46.5, -43.25), (46.5, -47.75), (54.5, -47.75), (54.5, -39.75), (50, -39.75), (50, -43.25), align=None)
        with Locations((51.5, -44.75)):
            Circle(SKETCH1_7_R, mode=Mode.SUBTRACT)
    extrude(amount=BOSS_EXTRUDE2_DEPTH)

    # Fillet1
    fillet1_edges = [part.edges().sort_by_distance(p)[0] for p in [
        (-50, -43.25, 3.5),
        (50, -43.25, 3.5),
        (-50, 43.25, 3.5),
        (50, 43.25, 3.5),
        (54.5, -47.75, 3.5),
        (-54.5, -47.75, 3.5),
        (-54.5, 47.75, 3.5),
        (54.5, 47.75, 3.5),
        (-46.5, 45.5, 2),
        (-52.25, 39.75, 2),
        (52.25, 39.75, 2),
        (46.5, 45.5, 2),
        (-52.25, -39.75, 2),
        (-46.5, -45.5, 2),
        (46.5, -45.5, 2),
        (52.25, -39.75, 2),
    ]]
    fillet(fillet1_edges, radius=FILLET1_R)


solid = part.part
